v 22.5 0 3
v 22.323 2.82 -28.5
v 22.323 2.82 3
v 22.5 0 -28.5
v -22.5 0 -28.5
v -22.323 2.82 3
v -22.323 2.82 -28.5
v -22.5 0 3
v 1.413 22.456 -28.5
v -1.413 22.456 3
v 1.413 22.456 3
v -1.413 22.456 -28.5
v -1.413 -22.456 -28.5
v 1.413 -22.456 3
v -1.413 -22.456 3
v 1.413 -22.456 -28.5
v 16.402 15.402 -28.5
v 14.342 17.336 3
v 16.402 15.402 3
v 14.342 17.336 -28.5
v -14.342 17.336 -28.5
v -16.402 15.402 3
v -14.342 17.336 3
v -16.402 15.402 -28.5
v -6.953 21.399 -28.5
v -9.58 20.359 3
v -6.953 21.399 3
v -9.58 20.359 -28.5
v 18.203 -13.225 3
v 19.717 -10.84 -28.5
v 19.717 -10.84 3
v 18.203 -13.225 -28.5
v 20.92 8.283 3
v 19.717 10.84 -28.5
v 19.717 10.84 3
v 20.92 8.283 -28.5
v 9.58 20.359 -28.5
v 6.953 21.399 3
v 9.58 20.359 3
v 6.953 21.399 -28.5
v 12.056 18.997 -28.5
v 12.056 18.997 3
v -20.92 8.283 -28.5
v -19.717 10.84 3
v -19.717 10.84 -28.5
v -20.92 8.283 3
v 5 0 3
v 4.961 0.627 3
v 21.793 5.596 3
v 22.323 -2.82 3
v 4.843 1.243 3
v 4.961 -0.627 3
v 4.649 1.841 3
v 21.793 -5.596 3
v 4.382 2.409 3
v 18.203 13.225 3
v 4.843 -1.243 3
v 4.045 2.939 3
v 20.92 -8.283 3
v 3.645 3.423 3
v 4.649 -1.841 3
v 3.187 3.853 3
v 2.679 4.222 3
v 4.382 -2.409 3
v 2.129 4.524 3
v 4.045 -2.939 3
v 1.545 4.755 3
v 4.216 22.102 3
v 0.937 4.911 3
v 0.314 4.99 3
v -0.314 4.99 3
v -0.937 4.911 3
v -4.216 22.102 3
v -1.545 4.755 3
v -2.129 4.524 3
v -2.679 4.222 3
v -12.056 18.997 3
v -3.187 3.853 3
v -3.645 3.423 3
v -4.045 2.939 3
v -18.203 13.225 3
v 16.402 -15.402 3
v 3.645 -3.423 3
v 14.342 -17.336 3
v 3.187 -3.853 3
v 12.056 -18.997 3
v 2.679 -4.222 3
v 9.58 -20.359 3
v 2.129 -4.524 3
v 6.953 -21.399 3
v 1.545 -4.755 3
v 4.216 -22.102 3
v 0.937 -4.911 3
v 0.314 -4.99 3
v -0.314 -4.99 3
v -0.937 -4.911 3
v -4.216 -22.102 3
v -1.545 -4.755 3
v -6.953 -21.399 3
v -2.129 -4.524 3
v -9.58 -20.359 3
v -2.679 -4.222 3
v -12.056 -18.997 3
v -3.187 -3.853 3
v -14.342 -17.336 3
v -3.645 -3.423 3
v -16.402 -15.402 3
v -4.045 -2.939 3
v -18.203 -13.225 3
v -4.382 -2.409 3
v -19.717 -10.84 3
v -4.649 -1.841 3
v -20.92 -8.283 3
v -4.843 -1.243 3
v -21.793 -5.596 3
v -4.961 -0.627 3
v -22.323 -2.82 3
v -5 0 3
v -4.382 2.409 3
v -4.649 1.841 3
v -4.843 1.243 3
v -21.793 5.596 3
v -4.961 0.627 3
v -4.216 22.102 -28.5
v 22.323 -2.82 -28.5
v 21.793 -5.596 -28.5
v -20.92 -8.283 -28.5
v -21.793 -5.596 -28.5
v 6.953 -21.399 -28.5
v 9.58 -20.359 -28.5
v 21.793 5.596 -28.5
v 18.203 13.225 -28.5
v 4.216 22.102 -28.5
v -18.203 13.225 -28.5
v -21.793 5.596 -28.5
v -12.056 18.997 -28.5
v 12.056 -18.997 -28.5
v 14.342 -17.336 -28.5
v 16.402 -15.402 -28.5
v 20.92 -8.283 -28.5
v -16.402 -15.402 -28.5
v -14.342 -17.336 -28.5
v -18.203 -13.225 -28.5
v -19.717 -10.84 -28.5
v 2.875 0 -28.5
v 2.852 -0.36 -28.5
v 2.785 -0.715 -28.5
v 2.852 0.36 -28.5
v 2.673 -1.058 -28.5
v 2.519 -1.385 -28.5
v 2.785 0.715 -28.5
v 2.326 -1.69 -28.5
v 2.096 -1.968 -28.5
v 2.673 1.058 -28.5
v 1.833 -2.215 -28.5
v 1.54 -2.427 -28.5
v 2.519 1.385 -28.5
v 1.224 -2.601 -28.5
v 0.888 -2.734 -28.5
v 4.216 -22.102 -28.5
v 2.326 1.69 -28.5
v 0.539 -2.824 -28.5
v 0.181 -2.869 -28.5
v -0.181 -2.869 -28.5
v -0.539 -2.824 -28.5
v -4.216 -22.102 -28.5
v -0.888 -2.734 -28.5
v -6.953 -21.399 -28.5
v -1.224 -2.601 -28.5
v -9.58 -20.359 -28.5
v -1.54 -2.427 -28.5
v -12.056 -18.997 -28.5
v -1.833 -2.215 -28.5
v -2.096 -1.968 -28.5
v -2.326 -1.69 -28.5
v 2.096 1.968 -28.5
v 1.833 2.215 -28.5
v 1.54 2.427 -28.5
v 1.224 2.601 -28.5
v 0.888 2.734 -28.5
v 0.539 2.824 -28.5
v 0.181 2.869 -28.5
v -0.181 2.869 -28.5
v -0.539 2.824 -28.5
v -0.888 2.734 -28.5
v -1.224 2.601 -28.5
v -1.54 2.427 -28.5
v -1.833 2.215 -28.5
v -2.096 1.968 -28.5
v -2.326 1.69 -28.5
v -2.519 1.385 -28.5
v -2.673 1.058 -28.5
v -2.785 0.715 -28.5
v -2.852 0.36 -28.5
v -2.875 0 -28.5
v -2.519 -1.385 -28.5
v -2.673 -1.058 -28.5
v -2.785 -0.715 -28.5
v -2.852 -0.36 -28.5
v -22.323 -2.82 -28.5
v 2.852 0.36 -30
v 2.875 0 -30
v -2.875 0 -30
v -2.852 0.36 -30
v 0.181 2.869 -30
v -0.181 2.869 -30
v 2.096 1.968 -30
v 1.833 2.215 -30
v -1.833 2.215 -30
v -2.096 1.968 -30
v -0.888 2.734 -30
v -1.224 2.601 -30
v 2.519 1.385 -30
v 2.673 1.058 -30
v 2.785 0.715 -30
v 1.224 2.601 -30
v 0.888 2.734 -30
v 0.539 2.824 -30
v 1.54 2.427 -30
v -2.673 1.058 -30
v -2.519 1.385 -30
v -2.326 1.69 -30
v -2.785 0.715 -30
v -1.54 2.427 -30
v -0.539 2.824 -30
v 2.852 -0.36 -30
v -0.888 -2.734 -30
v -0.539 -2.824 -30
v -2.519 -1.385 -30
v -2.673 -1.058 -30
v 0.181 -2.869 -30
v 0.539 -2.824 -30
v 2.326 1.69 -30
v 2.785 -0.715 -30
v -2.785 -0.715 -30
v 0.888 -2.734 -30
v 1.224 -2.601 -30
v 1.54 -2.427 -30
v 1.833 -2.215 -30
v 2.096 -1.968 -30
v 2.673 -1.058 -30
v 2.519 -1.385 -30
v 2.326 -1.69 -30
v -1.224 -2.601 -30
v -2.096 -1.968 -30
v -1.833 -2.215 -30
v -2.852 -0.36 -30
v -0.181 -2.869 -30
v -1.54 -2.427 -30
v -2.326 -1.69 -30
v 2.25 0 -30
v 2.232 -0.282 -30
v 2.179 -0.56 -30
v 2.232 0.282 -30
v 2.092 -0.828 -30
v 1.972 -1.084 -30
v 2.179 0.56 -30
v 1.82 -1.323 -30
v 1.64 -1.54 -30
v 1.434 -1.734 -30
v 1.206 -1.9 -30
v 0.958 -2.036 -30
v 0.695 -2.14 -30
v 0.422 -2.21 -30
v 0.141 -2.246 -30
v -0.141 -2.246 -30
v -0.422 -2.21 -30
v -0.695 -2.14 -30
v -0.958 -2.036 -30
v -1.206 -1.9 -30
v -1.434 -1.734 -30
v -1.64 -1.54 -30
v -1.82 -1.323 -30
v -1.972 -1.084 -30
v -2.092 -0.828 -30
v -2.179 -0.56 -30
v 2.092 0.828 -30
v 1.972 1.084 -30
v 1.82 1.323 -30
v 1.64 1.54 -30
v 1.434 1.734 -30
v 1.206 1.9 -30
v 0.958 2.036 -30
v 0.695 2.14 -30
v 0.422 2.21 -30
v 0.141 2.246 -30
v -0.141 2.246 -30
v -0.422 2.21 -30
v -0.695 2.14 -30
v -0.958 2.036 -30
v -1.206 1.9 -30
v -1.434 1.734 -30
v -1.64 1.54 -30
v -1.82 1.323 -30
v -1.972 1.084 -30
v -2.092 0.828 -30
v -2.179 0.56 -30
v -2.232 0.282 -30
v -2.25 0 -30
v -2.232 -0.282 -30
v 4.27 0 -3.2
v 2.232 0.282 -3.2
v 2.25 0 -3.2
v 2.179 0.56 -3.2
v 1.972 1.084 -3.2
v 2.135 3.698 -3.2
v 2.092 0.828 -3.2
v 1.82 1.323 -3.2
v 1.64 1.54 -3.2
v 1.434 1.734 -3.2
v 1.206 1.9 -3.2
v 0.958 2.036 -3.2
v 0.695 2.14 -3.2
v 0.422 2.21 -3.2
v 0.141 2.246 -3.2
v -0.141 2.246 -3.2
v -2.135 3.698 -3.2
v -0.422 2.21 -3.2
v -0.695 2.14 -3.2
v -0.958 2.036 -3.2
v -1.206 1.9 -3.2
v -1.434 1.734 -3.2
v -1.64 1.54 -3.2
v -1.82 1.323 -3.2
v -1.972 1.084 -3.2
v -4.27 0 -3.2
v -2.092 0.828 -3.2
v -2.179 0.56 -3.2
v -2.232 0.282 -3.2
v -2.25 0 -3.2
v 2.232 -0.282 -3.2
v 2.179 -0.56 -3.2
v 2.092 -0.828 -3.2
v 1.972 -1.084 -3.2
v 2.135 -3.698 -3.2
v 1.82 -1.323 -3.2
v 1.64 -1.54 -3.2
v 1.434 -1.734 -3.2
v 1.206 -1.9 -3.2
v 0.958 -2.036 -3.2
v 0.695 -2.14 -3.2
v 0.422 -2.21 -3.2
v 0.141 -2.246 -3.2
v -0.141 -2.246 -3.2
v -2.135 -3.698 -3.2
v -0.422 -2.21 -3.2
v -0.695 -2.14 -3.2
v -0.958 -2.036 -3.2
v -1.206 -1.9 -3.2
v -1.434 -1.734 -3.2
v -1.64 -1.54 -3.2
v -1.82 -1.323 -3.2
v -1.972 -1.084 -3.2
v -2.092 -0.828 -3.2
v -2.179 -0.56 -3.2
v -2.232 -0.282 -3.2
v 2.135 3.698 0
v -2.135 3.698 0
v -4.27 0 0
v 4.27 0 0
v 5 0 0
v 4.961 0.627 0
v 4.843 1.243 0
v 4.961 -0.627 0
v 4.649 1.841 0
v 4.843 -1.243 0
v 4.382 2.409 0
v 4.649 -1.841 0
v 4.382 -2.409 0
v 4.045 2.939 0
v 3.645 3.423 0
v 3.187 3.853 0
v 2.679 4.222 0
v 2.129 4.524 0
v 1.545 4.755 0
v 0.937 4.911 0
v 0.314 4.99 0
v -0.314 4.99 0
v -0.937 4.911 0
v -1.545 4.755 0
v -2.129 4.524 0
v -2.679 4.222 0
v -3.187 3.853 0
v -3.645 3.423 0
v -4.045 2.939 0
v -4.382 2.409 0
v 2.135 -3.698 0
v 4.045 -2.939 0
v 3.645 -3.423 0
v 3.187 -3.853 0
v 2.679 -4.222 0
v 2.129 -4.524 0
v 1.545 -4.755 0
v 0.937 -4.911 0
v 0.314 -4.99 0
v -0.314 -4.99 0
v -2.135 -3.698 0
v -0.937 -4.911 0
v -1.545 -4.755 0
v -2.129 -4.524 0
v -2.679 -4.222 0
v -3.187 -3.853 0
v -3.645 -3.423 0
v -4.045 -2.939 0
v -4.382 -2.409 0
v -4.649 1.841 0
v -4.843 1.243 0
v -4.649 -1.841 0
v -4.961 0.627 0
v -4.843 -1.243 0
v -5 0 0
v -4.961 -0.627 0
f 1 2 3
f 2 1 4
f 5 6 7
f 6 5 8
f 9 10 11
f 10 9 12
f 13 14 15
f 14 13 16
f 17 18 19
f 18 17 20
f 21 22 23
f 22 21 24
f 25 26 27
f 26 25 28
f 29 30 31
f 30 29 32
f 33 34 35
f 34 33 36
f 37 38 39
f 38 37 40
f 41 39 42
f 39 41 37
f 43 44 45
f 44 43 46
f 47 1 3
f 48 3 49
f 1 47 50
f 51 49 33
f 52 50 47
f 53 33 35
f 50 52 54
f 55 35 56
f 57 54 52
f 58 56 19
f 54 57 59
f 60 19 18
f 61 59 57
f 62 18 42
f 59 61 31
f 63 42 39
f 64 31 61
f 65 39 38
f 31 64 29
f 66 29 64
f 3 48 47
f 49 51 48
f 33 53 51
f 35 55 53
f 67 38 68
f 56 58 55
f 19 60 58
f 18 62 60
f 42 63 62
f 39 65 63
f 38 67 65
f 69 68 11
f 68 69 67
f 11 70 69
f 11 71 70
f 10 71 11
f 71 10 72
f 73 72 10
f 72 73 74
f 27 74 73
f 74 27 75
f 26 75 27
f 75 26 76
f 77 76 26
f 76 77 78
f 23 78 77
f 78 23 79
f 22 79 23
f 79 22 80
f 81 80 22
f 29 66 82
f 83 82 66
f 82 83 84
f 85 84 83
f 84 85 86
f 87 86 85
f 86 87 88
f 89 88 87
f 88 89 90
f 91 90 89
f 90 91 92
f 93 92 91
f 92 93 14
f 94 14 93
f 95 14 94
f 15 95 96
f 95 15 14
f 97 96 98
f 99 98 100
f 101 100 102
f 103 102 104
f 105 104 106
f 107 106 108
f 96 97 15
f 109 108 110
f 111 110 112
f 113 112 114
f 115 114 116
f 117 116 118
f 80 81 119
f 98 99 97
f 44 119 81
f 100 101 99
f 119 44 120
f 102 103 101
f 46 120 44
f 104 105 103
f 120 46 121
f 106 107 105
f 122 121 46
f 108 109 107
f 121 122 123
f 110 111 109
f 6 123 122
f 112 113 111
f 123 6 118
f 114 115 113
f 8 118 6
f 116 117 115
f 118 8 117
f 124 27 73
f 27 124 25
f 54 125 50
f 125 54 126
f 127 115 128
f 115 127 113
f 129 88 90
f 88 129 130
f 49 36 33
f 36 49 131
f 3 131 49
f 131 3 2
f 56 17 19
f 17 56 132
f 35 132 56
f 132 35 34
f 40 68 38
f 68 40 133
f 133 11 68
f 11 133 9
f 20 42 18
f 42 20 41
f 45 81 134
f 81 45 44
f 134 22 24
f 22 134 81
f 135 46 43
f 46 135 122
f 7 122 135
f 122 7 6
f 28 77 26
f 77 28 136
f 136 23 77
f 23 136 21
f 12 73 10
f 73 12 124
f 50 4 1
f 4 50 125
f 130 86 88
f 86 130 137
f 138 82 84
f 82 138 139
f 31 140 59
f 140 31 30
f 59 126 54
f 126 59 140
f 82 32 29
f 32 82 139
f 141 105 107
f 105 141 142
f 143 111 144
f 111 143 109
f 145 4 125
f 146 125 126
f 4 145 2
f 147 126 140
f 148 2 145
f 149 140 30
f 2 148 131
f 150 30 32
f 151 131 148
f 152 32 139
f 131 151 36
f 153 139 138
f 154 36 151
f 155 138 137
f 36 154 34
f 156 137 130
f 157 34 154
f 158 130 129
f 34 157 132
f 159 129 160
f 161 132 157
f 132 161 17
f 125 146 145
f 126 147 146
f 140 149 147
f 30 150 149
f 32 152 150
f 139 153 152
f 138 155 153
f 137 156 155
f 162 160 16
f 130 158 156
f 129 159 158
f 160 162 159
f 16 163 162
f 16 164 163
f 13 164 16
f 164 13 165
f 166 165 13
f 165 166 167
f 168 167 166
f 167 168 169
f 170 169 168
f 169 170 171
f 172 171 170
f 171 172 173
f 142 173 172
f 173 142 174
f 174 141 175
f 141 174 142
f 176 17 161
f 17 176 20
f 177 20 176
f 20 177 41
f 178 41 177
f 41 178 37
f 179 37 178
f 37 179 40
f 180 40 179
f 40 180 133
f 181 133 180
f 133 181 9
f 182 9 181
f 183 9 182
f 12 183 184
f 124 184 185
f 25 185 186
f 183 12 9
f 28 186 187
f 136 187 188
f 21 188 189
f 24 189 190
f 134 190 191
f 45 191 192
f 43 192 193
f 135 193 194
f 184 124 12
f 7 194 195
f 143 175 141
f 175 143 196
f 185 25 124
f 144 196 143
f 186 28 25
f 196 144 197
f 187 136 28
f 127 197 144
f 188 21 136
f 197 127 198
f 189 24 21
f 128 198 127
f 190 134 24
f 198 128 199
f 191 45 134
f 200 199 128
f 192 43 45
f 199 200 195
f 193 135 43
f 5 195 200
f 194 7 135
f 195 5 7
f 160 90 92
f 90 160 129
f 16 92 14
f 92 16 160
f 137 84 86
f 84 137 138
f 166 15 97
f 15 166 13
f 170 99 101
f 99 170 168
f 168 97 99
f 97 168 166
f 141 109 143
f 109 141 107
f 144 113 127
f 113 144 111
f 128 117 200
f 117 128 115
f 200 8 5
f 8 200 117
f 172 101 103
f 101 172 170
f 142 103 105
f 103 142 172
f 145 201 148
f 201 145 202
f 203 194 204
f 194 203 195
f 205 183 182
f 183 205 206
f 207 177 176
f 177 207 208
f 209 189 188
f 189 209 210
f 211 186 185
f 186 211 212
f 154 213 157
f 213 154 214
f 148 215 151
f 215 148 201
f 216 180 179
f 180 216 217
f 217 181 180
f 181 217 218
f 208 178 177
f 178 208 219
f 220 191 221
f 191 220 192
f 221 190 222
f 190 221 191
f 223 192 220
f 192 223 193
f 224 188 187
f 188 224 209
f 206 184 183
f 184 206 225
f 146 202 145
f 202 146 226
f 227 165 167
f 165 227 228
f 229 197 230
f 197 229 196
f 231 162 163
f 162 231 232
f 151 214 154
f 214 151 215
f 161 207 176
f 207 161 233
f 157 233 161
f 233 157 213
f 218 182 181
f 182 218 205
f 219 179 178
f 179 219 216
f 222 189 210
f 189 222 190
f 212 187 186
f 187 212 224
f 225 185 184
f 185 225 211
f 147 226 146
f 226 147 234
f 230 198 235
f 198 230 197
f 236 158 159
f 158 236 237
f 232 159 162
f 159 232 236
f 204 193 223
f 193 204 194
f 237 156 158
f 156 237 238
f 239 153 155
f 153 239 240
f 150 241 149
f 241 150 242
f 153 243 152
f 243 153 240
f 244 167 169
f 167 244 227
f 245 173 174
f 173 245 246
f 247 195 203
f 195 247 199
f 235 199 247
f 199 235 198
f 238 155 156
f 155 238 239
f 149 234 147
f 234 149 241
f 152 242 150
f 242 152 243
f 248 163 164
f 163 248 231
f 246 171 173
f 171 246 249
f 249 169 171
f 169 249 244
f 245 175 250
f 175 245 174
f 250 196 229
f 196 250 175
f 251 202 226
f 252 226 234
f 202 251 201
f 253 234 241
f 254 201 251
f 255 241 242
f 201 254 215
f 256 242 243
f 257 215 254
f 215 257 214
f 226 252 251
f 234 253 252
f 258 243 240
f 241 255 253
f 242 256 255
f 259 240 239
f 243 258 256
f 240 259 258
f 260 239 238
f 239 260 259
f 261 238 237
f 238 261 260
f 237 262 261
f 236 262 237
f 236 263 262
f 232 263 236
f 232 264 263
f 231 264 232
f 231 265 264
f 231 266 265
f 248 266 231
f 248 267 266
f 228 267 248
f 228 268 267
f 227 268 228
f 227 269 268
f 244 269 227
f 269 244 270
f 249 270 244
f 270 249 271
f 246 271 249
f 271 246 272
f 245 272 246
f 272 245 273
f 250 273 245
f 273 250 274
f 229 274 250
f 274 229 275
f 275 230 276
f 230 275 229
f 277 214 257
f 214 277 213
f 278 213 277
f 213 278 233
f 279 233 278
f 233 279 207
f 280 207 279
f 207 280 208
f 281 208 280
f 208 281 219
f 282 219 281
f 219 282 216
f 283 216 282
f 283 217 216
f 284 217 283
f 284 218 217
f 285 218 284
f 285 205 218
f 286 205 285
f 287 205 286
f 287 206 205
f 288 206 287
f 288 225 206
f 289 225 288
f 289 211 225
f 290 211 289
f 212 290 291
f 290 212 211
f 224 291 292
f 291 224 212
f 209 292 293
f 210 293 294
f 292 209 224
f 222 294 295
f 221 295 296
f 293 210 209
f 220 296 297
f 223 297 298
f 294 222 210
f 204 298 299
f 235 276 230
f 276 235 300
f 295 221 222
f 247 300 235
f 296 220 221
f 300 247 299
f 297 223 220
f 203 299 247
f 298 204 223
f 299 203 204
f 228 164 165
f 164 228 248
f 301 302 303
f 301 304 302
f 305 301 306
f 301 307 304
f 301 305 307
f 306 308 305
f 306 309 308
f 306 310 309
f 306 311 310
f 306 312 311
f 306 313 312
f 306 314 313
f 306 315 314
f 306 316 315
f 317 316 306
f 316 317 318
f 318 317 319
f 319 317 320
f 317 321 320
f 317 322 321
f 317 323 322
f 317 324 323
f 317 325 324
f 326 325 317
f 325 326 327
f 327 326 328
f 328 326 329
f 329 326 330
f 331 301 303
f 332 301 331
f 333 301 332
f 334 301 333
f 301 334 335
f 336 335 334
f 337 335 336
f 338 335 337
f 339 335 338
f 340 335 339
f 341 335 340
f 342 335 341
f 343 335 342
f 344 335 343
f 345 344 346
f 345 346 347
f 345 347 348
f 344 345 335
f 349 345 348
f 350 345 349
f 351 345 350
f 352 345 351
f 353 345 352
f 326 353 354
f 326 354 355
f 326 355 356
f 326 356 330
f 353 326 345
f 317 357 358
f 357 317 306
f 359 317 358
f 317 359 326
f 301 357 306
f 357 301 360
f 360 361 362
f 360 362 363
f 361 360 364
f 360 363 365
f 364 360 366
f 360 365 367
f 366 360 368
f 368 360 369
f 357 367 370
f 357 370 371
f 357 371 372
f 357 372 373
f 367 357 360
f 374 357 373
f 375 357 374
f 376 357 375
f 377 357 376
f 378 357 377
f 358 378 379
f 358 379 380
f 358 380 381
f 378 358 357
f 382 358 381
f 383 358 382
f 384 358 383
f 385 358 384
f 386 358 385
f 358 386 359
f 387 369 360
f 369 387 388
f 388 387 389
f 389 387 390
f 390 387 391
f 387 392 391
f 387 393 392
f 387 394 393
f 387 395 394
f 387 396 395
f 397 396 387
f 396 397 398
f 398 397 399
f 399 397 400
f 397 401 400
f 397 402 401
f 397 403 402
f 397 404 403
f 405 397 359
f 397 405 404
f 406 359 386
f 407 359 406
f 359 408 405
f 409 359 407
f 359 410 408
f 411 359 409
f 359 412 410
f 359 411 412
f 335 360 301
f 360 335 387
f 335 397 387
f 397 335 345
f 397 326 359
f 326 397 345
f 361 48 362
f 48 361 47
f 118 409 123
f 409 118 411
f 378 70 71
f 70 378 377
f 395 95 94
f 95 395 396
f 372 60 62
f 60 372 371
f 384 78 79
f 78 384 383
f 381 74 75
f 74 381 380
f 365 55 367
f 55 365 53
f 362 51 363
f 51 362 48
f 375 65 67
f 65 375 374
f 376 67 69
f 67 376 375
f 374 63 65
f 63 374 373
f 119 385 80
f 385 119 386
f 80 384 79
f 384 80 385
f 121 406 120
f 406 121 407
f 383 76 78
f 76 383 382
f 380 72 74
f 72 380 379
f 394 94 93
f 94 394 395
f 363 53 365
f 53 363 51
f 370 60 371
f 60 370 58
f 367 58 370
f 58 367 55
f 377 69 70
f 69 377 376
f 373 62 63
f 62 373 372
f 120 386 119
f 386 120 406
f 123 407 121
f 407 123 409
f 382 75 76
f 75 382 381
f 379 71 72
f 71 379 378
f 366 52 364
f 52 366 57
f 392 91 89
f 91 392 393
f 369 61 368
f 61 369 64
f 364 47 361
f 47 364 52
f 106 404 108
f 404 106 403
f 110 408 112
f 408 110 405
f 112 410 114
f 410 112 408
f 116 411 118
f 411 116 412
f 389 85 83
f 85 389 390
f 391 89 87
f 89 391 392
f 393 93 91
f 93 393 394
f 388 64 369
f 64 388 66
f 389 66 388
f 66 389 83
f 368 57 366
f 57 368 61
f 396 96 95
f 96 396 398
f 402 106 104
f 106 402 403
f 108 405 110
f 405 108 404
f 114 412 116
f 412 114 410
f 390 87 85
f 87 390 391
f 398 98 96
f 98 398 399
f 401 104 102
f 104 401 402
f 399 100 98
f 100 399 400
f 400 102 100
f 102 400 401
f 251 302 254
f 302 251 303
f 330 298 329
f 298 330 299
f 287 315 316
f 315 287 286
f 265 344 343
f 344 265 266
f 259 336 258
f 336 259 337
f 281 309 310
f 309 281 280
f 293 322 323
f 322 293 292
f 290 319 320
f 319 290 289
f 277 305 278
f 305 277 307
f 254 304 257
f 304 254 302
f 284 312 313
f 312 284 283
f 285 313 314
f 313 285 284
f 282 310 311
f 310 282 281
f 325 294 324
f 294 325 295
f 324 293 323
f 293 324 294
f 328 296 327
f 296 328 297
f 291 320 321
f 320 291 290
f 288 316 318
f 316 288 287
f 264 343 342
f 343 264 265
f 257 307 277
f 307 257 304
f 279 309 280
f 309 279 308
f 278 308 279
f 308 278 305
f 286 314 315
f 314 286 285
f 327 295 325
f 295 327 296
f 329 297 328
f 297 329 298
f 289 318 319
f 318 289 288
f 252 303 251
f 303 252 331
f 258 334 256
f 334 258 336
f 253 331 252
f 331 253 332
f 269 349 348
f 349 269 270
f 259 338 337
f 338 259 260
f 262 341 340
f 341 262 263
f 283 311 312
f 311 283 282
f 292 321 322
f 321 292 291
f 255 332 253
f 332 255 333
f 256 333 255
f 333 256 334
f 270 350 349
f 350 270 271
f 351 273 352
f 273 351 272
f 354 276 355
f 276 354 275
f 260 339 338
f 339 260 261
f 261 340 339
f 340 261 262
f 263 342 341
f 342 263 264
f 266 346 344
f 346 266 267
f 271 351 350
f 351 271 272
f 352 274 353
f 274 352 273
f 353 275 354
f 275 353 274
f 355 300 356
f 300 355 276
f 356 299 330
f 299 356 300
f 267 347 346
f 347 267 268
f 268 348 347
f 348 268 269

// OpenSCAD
$fn = 50;

difference() {
	union() {
		translate(v = [0, 0, -28.5]) {
			cylinder(h = 31.5, r = 22.5);
		}
		#translate(v = [0, 0, -30.0]) {
			cylinder(h = 30, r = 2.875);
		}
	}
	union() {
		translate(v = [0, 0, 0]) {
			rotate(a = [0, 0, 0]) {
				difference() {
					union() {
						translate(v = [0, 0, -3.2]) {
							linear_extrude(height = 3.2) {
								polygon(points = [[4.2698, 0.0], [2.1349000000000005, 3.697755269078796], [-2.134899999999999, 3.6977552690787965], [-4.2698, 5.228996902999369e-16], [-2.134900000000002, -3.6977552690787956], [2.1348999999999974, -3.697755269078798]]);
							}
						}
					}
					union();
				}
			}
		}
		#cylinder(h = 3, r = 5.0);
		#translate(v = [0, 0, -100.0]) {
			cylinder(h = 200, r = 2.25);
		}
	}
}
